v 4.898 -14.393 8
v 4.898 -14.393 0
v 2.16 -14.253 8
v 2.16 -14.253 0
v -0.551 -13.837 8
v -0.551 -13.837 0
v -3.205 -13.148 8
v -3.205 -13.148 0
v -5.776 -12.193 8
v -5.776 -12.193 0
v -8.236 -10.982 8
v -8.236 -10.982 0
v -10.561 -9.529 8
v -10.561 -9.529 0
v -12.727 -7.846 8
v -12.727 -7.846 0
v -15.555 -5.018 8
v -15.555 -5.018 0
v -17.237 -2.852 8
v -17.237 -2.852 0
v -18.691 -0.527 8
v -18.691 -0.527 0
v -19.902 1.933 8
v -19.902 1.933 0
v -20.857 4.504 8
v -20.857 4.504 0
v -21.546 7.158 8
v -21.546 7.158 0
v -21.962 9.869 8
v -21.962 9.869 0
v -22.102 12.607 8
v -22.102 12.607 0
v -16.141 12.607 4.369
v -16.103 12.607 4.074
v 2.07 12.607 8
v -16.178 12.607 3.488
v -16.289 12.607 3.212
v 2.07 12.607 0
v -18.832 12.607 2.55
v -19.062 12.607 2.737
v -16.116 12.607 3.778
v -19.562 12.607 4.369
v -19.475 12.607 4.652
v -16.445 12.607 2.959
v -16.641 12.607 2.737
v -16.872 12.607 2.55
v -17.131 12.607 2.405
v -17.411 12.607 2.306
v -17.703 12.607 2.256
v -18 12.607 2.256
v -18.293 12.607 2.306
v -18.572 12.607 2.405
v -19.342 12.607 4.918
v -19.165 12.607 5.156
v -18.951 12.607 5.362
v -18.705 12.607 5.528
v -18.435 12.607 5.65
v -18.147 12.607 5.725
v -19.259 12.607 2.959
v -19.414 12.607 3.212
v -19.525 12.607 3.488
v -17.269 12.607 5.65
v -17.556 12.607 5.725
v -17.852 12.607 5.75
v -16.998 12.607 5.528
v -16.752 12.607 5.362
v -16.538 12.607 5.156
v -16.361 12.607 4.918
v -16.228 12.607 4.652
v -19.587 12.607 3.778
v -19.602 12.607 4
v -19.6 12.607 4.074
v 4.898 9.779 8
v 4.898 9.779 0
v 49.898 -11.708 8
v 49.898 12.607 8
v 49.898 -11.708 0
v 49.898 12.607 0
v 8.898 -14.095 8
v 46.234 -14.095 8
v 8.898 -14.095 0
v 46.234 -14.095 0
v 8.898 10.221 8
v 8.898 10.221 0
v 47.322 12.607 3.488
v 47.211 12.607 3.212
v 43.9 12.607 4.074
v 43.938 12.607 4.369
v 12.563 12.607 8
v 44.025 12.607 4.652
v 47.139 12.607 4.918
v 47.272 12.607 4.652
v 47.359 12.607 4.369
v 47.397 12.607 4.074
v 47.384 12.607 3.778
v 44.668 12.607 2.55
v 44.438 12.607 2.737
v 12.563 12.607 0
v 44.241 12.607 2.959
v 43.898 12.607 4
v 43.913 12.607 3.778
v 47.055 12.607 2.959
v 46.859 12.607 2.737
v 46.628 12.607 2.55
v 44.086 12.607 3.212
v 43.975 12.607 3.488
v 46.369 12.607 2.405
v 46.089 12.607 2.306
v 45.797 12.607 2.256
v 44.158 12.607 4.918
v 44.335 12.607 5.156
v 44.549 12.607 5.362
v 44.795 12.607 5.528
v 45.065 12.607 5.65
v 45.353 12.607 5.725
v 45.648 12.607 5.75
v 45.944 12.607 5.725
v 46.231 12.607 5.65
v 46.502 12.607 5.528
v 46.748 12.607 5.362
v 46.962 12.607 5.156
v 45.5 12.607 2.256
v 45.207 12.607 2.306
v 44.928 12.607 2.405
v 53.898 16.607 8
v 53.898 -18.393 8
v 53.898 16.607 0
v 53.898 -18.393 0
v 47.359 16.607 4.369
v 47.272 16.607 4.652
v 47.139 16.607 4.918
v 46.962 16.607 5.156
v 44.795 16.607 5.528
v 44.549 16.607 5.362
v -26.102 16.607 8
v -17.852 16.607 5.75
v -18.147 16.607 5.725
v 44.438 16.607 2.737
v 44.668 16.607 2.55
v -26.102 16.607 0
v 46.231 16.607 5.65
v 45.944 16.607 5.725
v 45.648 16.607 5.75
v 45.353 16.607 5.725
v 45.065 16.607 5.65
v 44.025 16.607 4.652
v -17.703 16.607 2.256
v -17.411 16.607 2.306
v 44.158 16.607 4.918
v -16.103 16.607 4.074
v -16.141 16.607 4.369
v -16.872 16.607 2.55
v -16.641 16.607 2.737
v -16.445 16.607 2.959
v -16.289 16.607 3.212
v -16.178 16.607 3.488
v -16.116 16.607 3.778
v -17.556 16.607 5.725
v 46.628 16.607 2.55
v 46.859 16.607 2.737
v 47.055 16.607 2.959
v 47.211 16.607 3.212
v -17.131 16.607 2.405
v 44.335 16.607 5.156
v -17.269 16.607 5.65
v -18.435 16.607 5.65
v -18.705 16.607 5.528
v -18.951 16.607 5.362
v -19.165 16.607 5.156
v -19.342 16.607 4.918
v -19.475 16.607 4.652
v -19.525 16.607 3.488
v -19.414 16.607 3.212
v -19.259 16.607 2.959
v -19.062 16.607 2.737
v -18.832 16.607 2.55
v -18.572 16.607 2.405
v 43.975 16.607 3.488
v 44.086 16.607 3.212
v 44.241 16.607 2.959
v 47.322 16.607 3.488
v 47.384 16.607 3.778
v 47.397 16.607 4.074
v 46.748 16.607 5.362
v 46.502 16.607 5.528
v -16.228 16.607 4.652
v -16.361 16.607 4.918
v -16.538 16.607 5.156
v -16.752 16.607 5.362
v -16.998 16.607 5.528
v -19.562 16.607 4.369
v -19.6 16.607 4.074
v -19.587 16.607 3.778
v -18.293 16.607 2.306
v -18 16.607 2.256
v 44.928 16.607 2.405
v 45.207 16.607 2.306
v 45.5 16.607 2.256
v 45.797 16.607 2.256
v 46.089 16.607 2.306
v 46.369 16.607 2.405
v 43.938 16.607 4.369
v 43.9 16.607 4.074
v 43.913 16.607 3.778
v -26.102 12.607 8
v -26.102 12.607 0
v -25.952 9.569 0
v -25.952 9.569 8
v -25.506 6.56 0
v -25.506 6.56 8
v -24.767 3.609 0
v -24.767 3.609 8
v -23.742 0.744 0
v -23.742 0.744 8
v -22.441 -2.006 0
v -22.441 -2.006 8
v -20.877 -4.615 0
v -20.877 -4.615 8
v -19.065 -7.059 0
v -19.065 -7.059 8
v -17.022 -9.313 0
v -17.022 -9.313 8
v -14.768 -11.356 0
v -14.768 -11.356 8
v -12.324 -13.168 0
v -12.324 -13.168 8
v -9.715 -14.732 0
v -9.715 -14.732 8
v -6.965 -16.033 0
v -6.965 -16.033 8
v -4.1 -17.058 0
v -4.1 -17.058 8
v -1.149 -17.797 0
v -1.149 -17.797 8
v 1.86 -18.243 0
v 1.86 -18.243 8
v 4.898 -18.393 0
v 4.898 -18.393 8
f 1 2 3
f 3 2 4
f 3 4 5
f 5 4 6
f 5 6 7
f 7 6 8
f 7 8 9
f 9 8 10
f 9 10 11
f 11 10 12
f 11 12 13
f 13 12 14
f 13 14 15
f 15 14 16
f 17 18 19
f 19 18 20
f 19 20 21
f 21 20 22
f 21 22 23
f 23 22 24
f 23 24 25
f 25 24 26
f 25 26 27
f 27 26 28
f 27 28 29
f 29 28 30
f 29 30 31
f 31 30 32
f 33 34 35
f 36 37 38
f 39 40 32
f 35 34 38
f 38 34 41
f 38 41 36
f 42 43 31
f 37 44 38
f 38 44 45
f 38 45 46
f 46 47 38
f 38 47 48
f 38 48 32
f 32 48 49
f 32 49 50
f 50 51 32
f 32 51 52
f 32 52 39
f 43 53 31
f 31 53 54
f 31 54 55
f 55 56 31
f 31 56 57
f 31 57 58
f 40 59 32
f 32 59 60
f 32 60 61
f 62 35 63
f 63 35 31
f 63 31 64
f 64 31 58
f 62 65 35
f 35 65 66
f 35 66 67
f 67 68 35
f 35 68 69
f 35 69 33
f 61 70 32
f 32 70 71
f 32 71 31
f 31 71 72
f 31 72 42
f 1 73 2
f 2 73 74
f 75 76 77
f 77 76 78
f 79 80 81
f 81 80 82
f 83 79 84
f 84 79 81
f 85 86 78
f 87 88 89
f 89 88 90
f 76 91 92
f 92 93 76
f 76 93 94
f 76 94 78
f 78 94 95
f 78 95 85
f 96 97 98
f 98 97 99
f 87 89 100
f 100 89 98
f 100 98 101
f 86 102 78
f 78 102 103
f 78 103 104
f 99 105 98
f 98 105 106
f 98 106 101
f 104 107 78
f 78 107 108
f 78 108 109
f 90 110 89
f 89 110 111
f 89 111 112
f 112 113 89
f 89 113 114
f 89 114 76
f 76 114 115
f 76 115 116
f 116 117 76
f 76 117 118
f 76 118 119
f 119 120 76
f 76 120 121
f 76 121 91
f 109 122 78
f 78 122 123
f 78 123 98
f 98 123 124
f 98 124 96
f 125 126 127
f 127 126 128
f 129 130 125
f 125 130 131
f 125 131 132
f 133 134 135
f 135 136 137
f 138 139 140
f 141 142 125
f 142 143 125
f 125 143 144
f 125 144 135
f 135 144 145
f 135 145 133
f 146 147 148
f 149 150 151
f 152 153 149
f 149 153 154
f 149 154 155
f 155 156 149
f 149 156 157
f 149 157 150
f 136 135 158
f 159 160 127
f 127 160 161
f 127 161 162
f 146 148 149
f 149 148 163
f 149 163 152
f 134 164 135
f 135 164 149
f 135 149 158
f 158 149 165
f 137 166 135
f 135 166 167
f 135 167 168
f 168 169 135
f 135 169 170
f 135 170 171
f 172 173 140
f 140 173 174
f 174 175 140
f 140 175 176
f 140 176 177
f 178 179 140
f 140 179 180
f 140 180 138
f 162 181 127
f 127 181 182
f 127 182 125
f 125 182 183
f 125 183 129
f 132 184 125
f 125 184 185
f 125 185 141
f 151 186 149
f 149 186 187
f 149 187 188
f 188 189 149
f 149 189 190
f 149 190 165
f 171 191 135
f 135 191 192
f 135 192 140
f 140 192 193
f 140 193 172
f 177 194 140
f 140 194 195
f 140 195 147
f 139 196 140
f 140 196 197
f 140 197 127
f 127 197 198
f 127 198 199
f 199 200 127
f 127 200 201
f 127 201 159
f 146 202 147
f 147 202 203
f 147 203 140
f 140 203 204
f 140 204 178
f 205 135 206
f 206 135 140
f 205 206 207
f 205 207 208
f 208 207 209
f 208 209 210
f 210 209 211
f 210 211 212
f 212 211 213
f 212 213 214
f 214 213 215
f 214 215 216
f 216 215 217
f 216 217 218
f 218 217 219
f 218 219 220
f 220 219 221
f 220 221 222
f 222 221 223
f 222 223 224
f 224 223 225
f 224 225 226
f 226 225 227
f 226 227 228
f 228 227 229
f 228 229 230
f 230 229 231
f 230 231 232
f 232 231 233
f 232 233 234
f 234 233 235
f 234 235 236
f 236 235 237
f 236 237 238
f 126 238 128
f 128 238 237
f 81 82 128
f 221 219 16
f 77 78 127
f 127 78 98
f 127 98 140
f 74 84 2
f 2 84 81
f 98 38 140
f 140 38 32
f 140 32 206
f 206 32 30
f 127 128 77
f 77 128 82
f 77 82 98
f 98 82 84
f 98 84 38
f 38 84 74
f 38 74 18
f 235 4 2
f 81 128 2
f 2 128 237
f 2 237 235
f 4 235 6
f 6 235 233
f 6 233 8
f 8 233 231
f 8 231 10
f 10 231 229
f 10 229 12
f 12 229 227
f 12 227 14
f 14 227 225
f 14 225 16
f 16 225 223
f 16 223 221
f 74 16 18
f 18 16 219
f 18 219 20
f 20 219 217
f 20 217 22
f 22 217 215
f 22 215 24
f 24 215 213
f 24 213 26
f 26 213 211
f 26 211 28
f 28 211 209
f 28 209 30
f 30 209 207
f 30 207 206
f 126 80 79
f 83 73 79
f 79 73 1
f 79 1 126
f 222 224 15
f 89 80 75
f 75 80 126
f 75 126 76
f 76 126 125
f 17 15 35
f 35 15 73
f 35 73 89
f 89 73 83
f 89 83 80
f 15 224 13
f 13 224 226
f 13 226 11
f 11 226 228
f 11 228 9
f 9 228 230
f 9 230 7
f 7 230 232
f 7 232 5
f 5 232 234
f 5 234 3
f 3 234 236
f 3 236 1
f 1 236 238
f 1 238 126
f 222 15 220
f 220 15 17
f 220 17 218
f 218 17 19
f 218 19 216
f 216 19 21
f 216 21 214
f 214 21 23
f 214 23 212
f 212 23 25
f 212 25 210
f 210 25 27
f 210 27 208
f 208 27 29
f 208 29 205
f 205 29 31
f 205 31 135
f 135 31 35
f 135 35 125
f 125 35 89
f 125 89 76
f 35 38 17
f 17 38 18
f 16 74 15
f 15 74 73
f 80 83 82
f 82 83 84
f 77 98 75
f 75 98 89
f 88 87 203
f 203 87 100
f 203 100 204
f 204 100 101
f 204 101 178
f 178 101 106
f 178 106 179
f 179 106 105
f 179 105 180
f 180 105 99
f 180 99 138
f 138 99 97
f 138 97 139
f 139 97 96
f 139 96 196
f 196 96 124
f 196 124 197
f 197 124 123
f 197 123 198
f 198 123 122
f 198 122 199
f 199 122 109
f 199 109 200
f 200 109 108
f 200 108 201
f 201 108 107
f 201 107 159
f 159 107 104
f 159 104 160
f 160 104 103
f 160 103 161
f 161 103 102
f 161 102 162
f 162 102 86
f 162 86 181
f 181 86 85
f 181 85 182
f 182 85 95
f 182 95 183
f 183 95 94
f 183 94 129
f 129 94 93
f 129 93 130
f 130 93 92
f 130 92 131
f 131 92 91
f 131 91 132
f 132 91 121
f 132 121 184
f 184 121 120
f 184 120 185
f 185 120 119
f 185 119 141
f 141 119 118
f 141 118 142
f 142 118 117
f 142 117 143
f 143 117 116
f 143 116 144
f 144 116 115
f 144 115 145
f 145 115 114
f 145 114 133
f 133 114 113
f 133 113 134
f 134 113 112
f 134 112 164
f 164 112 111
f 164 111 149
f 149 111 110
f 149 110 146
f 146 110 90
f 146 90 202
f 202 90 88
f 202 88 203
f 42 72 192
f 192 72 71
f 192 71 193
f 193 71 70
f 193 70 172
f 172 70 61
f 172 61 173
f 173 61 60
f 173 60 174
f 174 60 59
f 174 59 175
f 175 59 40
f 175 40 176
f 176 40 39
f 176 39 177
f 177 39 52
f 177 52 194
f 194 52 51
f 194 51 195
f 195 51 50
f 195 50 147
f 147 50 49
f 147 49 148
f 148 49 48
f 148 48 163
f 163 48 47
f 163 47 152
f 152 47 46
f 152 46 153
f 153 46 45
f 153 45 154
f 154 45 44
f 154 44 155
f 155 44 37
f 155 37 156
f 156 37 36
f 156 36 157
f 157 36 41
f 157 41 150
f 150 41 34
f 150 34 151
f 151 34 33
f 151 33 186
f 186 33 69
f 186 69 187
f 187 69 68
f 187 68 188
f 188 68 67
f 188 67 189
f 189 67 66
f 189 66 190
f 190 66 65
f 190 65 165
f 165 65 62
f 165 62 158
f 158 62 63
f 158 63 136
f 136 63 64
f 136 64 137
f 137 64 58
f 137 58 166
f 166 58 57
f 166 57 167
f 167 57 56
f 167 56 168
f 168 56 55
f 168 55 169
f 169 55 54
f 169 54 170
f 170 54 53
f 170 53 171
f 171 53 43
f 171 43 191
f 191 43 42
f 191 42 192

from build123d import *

# Parameters (mm, degrees)
SALIENTE_EXTRUIR1_DEPTH = 8
CROQUIS2_R              = 1.75
CORTAR_EXTRUIR1_DEPTH   = 8


with BuildPart() as part:
    # Croquis1 → Saliente-Extruir1 (new body)
    with BuildSketch(Plane.XY):
        with BuildLine():
            ThreePointArc((-26.101559178, 12.607406095), (-17.021869395, -9.312904122), (4.898440822, -18.392593905))
            Line((4.898440822, -18.392593905), (53.898440822, -18.392593905))
            Line((53.898440822, -18.392593905), (53.898440822, 16.607406095))
            Line((53.898440822, 16.607406095), (-26.101559178, 16.607406095))
            Line((-26.101559178, 16.607406095), (-26.101559178, 12.607406095))
        make_face()
        with BuildLine():
            Line((-12.72677838, -7.846240232), (4.898440822, 9.77897897))
            Line((4.898440822, 9.77897897), (4.898440822, -14.392593905))
            ThreePointArc((4.898440822, -14.392593905), (-4.502398214, -12.703149518), (-12.72677838, -7.846240232))
        make_face(mode=Mode.SUBTRACT)
        Polygon((8.898440822, -14.094653751), (8.898440822, 10.220649056), (46.233665927, -14.094653751), align=None, mode=Mode.SUBTRACT)
        with BuildLine():
            Line((2.070013697, 12.607406095), (-15.555205505, -5.017813107))
            ThreePointArc((-15.555205505, -5.017813107), (-20.41211479, 3.206567059), (-22.101559178, 12.607406095))
            Line((-22.101559178, 12.607406095), (2.070013697, 12.607406095))
        make_face(mode=Mode.SUBTRACT)
        Polygon((49.898440822, 12.607406095), (49.898440822, -11.707896712), (12.563215718, 12.607406095), align=None, mode=Mode.SUBTRACT)
    extrude(amount=SALIENTE_EXTRUIR1_DEPTH)

    # Croquis2 → Cortar-Extruir1 (cut)
    with BuildSketch(Plane(origin=(0, 16.607406095, 0), x_dir=(1, 0, 0), z_dir=(0, 1, 0))):
        with Locations(Location((-17.851559178, -4, 0), (0, 0, 270))):
            Circle(CROQUIS2_R)
        with Locations(Location((45.648440822, -4, 0), (0, 0, 270))):
            Circle(CROQUIS2_R)
    extrude(amount=-CORTAR_EXTRUIR1_DEPTH, mode=Mode.SUBTRACT)


solid = part.part
